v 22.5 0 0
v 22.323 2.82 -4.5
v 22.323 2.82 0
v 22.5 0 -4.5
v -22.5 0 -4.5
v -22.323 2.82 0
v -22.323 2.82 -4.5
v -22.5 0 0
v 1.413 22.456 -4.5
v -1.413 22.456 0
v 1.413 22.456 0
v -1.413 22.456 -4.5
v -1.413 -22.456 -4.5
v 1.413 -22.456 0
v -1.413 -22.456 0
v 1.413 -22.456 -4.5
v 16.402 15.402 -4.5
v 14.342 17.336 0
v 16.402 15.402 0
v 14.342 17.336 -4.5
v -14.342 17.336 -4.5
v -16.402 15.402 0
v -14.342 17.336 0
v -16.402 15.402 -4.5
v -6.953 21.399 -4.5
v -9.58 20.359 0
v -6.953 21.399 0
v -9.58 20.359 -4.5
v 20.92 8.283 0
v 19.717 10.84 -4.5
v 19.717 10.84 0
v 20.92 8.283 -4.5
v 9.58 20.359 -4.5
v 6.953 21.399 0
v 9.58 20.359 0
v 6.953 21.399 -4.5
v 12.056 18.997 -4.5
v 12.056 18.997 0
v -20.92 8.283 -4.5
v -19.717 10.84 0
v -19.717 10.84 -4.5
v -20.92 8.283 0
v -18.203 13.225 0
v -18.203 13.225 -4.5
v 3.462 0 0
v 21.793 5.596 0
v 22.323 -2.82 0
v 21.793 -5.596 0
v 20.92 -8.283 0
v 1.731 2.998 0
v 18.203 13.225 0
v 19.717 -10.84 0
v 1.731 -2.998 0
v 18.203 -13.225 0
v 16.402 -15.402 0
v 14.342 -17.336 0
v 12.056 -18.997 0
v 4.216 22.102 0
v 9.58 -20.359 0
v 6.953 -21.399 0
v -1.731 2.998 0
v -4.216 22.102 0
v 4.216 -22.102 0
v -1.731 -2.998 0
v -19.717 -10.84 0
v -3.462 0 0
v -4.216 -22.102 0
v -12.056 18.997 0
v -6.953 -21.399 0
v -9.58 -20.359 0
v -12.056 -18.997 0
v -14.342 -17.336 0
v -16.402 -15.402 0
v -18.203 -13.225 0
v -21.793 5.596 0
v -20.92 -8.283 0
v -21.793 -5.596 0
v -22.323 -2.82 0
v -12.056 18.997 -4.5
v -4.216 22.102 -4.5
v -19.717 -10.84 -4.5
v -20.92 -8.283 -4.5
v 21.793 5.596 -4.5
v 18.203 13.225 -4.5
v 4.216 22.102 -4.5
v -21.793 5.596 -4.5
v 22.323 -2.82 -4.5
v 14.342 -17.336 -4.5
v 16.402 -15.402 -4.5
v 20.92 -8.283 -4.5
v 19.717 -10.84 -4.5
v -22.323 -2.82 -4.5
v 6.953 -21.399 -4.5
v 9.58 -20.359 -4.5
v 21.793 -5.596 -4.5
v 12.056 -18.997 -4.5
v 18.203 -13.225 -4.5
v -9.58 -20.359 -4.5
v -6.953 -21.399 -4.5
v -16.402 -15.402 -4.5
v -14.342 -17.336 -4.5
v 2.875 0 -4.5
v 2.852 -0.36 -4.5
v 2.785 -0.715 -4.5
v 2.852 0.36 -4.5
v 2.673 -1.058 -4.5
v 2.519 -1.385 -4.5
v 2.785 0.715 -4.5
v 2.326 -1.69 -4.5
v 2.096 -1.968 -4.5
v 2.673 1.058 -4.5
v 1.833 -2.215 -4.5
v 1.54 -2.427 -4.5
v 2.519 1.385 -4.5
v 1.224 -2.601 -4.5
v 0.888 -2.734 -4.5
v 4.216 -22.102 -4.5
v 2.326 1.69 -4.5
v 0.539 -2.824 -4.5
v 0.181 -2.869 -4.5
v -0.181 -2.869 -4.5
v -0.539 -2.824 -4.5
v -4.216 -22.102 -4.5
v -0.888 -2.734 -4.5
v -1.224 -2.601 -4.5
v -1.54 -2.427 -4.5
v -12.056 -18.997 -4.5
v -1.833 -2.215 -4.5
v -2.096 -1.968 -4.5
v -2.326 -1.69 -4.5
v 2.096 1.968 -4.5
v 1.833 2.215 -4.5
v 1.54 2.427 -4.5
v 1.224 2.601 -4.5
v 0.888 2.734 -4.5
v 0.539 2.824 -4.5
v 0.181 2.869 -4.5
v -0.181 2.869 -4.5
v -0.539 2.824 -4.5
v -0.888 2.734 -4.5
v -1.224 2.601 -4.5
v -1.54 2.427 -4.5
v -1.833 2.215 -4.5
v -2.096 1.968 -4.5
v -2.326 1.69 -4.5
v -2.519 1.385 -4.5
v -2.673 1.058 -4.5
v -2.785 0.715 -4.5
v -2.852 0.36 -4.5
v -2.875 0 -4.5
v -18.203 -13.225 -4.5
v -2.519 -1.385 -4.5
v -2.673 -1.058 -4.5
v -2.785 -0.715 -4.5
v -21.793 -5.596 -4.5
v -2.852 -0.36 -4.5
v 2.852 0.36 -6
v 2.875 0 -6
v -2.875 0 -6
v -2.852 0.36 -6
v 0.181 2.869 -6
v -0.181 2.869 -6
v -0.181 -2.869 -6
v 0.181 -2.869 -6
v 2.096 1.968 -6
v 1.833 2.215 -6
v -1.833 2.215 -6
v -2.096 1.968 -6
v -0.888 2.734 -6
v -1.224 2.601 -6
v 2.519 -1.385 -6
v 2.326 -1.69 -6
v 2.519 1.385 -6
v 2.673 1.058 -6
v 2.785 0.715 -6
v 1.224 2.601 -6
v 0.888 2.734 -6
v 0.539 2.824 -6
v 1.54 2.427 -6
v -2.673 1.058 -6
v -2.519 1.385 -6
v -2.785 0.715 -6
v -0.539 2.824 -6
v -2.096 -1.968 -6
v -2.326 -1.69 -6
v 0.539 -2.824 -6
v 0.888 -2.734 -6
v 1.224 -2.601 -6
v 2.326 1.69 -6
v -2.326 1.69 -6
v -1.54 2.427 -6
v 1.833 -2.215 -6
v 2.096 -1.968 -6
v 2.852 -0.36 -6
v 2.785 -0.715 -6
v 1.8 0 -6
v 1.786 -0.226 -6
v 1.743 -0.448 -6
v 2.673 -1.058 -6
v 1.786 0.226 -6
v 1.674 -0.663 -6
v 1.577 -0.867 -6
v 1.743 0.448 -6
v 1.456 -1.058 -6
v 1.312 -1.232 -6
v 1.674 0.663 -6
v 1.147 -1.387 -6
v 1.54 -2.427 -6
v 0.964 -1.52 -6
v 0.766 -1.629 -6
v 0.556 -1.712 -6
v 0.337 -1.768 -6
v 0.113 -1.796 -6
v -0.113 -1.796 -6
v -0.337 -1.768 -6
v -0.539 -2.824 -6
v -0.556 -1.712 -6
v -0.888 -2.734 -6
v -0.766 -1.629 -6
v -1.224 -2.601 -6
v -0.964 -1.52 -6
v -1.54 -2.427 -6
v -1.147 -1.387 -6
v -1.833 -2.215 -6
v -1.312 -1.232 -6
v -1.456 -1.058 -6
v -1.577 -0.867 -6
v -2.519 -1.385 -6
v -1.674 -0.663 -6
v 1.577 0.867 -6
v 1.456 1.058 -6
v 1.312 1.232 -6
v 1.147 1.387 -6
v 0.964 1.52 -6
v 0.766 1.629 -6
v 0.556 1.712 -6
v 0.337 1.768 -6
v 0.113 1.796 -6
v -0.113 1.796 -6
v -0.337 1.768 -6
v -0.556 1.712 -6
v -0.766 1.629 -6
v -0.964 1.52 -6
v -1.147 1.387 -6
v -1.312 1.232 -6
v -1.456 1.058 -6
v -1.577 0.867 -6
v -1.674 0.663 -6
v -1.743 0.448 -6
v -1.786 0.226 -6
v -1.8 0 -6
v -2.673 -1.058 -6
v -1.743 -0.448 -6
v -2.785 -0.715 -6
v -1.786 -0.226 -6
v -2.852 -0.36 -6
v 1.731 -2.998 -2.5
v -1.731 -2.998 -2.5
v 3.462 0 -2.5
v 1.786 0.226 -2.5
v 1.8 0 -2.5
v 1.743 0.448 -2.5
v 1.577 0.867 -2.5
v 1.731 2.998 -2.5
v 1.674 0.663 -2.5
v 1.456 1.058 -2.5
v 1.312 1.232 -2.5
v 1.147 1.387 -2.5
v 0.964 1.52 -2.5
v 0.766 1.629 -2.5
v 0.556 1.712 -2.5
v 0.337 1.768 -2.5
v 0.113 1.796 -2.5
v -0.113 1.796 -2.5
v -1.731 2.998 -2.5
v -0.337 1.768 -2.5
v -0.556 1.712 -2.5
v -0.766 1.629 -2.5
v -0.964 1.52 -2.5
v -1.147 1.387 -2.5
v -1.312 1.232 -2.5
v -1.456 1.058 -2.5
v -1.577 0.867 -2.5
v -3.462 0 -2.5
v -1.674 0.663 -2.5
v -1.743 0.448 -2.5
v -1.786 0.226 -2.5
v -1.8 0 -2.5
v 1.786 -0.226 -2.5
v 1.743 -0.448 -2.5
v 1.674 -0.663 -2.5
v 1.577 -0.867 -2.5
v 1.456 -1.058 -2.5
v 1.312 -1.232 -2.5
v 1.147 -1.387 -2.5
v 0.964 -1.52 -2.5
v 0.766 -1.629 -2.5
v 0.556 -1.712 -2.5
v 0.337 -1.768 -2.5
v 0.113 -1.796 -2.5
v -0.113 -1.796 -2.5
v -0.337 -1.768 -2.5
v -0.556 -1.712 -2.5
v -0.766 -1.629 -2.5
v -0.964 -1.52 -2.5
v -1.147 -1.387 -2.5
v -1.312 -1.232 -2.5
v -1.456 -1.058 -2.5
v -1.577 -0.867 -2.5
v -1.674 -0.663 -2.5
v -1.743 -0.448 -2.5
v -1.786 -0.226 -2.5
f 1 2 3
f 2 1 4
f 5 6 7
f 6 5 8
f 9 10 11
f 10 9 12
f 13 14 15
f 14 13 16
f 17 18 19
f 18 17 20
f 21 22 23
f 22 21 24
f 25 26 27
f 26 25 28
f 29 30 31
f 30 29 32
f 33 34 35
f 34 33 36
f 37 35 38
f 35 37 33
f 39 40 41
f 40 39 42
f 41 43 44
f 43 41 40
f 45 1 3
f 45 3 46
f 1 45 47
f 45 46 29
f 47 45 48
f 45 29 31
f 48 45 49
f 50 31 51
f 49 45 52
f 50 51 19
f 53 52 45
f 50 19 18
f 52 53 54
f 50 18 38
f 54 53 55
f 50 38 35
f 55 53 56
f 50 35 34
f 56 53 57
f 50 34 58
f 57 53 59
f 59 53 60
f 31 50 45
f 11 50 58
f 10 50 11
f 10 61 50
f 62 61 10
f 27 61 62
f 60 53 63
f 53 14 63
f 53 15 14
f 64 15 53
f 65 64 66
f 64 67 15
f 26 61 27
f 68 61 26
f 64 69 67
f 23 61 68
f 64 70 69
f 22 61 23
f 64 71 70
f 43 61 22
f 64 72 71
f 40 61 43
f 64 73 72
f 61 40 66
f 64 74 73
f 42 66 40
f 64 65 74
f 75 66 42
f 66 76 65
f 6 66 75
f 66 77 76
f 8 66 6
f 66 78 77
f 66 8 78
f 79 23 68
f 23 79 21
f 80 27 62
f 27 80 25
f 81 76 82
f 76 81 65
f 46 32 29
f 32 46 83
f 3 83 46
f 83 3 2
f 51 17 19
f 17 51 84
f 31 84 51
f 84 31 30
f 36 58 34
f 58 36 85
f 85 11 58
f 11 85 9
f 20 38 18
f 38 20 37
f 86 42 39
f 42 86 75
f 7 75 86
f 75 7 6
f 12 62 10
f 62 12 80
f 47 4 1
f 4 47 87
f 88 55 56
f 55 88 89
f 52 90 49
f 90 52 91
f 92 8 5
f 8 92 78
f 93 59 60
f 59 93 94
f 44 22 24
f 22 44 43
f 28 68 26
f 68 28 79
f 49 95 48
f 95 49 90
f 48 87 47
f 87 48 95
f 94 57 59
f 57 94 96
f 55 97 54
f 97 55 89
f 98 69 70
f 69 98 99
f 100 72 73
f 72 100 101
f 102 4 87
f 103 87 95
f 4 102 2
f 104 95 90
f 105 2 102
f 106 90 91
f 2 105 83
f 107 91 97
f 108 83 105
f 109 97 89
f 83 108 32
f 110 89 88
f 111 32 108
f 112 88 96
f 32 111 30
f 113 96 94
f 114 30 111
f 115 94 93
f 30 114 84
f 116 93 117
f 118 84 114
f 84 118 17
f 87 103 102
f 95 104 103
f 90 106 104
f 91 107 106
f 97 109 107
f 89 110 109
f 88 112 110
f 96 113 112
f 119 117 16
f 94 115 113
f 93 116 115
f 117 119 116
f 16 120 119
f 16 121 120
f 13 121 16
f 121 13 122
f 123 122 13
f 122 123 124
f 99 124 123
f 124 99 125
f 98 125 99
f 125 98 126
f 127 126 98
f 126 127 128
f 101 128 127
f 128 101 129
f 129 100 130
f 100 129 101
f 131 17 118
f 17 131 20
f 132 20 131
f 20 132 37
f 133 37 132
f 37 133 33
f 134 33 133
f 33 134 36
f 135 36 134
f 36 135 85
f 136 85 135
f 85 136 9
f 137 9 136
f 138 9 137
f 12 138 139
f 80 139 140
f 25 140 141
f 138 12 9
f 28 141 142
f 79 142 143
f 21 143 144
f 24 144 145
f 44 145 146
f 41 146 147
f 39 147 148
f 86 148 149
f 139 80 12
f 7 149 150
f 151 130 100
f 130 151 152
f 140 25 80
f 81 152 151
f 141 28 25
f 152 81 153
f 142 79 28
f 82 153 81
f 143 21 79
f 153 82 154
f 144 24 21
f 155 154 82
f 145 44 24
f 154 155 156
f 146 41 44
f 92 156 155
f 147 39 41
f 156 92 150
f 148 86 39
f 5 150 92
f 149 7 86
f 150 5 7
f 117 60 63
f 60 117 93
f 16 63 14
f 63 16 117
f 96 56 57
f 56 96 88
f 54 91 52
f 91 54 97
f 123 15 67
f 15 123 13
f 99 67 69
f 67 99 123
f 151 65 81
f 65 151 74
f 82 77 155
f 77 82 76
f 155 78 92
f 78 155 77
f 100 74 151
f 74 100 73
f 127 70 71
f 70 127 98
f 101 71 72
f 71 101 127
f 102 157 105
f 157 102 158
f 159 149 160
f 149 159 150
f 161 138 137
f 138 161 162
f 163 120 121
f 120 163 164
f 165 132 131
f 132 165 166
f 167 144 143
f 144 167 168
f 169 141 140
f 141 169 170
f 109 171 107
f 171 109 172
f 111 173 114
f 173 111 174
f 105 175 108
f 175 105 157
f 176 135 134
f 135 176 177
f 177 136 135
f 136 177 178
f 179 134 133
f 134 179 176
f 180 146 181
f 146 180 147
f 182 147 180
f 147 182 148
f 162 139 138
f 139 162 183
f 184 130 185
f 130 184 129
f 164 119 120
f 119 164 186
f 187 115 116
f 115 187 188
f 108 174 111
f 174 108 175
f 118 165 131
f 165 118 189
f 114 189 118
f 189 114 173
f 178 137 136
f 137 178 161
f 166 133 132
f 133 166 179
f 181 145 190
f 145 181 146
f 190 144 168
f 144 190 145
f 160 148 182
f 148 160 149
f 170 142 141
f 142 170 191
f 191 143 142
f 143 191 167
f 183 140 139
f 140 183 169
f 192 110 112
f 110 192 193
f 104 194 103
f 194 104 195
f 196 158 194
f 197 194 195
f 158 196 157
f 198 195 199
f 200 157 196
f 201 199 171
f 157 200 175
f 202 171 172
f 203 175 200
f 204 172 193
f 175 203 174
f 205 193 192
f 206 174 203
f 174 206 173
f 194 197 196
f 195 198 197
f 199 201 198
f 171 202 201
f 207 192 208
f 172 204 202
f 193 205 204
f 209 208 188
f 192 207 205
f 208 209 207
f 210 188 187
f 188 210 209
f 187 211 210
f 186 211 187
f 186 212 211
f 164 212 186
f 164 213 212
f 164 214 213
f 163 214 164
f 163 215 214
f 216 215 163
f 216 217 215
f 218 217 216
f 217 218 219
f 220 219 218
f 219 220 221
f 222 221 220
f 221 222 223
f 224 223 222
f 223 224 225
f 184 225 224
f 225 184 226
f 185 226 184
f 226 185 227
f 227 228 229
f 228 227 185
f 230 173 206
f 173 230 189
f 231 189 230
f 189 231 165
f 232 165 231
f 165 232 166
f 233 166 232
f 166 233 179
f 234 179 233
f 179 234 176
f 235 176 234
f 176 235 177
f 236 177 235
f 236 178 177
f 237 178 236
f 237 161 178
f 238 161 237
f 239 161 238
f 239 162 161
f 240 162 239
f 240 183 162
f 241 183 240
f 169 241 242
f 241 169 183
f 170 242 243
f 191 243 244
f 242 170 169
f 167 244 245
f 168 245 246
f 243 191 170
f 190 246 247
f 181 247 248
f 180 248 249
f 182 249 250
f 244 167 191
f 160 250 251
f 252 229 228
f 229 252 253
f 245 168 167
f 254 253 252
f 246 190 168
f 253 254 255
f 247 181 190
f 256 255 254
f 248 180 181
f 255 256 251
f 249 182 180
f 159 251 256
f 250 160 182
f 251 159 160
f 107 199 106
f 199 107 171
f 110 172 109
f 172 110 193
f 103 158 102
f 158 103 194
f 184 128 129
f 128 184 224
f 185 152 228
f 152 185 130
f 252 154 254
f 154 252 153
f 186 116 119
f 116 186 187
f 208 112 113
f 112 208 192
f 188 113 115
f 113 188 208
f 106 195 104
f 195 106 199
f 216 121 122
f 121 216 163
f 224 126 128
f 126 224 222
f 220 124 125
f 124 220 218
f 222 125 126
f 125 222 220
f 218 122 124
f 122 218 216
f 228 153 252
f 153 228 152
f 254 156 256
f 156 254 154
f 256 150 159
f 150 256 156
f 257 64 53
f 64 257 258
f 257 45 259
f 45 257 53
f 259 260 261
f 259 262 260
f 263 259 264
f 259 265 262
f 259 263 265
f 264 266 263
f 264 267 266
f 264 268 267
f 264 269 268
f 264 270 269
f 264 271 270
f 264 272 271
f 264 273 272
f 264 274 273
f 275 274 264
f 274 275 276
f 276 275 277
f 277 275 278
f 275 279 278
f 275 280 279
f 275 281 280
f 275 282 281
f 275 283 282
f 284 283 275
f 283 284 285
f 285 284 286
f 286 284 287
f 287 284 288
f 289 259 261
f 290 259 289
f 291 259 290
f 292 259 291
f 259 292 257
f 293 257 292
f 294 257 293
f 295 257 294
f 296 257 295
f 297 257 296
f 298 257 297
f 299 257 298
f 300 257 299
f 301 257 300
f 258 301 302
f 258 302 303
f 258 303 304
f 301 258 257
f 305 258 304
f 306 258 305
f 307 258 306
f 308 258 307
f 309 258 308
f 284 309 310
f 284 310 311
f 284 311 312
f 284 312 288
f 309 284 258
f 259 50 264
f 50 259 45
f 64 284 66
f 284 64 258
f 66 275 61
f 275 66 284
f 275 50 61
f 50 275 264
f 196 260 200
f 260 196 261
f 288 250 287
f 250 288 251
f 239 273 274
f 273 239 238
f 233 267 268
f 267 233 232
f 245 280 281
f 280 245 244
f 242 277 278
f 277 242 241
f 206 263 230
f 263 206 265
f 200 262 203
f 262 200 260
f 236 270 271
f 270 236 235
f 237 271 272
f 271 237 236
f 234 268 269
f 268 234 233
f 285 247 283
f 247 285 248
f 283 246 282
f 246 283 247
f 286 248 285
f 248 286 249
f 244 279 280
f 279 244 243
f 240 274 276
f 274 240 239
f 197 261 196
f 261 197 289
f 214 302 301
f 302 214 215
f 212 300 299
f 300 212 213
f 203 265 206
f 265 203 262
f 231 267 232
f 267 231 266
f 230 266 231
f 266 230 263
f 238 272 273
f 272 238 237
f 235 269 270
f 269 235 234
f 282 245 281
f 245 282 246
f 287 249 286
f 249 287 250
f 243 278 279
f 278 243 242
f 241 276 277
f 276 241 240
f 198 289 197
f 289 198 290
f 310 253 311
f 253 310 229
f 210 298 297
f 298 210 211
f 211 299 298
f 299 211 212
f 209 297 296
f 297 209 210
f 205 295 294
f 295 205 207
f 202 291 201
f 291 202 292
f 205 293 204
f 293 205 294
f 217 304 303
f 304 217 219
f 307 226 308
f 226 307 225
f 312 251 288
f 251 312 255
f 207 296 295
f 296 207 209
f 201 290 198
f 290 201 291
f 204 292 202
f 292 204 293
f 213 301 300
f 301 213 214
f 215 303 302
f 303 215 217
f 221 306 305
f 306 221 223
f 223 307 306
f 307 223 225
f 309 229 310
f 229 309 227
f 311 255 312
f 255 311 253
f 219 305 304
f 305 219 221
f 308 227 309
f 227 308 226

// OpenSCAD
$fn = 50;


difference() {
	union() {
		translate(v = [0, 0, -4.5000000000]) {
			cylinder(h = 4.5000000000, r = 22.5000000000);
		}
		#translate(v = [0, 0, -6.0000000000]) {
			cylinder(h = 6, r = 2.8750000000);
		}
	}
	union() {
		translate(v = [0, 0, 0]) {
			rotate(a = [0, 0, 0]) {
				difference() {
					union() {
						translate(v = [0, 0, -2.5000000000]) {
							linear_extrude(height = 2.5000000000) {
								polygon(points = [[3.4620000000, 0.0000000000], [1.7310000000, 2.9981799479], [-1.7310000000, 2.9981799479], [-3.4620000000, 0.0000000000], [-1.7310000000, -2.9981799479], [1.7310000000, -2.9981799479]]);
							}
						}
					}
					union();
				}
			}
		}
		#translate(v = [0, 0, -100.0000000000]) {
			cylinder(h = 200, r = 1.8000000000);
		}
	}
}
